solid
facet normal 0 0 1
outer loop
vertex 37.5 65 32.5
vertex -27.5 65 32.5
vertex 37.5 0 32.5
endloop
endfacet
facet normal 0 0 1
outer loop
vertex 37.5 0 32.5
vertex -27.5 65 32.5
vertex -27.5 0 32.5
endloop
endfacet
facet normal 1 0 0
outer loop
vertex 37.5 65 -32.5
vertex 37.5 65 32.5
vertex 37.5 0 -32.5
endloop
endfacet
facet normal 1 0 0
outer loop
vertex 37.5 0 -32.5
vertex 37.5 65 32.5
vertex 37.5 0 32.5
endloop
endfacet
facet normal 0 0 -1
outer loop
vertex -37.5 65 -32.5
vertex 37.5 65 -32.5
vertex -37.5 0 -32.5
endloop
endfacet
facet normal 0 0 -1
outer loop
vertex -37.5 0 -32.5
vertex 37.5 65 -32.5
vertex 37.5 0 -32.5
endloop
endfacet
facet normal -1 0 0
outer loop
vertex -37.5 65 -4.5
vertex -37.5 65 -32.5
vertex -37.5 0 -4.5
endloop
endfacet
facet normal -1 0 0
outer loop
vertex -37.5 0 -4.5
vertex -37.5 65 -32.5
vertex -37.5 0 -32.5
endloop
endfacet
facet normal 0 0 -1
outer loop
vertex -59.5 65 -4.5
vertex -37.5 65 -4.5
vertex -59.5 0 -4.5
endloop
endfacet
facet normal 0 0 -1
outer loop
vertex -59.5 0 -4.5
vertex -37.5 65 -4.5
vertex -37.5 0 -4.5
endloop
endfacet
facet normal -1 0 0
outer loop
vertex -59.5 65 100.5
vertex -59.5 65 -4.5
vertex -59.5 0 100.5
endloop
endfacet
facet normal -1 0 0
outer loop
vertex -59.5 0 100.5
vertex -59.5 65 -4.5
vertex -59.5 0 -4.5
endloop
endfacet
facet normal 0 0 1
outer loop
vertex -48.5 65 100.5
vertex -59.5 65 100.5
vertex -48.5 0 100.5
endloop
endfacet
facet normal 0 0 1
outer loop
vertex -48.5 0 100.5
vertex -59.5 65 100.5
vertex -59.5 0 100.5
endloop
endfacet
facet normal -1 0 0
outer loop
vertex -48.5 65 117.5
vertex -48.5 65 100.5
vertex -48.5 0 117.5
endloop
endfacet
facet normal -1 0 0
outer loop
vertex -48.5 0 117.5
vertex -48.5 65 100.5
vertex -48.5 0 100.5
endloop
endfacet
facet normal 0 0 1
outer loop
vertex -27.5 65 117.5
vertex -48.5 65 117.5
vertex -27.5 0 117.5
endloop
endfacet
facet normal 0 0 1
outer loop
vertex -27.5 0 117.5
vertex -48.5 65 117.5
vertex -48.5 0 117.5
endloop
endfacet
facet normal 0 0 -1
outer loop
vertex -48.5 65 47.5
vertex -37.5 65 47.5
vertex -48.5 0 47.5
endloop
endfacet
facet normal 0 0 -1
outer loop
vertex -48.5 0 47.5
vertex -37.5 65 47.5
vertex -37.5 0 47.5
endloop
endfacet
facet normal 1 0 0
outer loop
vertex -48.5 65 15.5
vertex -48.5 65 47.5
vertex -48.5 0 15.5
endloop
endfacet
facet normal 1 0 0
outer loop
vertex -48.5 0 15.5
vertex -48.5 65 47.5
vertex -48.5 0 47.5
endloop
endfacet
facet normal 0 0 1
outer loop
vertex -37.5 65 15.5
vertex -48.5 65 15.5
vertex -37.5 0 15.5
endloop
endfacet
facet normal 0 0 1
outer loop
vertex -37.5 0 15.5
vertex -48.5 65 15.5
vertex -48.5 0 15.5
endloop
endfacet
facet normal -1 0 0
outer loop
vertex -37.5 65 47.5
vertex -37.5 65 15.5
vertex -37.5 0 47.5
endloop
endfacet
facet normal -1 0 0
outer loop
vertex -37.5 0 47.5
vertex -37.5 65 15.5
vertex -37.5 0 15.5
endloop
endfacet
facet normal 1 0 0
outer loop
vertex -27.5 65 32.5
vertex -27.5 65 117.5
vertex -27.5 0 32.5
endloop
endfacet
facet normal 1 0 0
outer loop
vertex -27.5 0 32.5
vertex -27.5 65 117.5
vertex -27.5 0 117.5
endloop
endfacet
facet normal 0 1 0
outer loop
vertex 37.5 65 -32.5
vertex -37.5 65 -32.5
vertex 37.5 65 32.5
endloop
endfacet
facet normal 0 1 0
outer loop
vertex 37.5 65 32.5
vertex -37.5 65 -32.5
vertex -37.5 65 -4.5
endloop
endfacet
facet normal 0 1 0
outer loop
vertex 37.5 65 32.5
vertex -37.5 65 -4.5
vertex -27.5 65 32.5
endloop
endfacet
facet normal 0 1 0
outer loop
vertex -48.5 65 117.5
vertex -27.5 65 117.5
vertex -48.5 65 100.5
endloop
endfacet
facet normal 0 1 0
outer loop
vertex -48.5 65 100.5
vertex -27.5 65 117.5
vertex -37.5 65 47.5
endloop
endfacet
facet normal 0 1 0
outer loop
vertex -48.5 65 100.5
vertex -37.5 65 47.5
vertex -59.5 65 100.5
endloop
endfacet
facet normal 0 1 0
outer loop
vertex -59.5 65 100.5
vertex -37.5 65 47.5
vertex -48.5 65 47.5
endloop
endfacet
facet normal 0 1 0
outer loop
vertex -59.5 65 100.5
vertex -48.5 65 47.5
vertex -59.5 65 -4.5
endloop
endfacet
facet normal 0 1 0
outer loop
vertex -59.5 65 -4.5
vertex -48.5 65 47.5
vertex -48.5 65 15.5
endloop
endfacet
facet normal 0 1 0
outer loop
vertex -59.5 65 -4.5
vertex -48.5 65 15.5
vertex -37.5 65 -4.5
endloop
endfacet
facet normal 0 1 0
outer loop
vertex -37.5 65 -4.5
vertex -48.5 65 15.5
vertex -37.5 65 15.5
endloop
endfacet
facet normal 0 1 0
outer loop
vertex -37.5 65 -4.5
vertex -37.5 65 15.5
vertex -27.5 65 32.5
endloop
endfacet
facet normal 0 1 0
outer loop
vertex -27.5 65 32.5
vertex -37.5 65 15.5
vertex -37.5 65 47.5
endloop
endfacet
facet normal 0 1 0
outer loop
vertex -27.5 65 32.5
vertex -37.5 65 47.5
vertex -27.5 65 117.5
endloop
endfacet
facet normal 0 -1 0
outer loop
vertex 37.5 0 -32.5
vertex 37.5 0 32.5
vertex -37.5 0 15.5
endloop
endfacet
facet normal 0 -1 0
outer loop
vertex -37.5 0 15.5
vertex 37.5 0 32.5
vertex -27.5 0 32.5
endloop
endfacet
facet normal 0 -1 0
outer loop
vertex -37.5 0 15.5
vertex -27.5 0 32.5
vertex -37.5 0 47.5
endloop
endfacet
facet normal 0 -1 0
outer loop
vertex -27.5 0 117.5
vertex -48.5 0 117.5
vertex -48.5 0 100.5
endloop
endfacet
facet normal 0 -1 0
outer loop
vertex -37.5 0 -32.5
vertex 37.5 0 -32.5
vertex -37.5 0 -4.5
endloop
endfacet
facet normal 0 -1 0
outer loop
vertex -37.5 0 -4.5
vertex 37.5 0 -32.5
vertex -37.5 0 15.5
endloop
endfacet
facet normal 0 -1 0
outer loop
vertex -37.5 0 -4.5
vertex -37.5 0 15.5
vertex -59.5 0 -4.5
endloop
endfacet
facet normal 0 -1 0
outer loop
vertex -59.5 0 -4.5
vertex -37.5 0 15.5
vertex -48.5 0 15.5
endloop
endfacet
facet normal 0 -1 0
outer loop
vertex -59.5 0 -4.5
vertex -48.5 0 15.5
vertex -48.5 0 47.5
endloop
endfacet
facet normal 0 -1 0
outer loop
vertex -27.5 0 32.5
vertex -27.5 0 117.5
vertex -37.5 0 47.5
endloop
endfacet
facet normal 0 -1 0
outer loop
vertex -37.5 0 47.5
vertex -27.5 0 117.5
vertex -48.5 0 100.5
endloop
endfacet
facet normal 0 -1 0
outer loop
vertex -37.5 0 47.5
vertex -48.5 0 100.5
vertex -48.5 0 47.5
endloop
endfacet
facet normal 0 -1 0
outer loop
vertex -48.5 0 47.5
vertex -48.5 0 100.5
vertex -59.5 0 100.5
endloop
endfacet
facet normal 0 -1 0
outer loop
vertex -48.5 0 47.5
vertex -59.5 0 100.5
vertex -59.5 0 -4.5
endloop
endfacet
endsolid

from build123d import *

# Parameters (mm, degrees)
SKIZZE1_W                       = 75
SKIZZE1_H                       = 65
SKIZZE1_W_2                     = 11
SKIZZE1_H_2                     = 20
AUFSATZ_LINEAR_AUSTRAGEN1_DEPTH = 65


with BuildPart() as part:
    # Skizze1 → Aufsatz-Linear austragen1 (new body)
    with BuildSketch(Plane(origin=(0, 0, 0), x_dir=(1, 0, 0), z_dir=(0, 1, 0))):
        Rectangle(SKIZZE1_W, SKIZZE1_H)
        with Locations((-43, -5.5)):
            Rectangle(SKIZZE1_W_2, SKIZZE1_H_2)
        Polygon((-48.5, -47.5), (-48.5, -15.5), (-48.5, 4.5), (-59.5, 4.5), (-59.5, -100.5), (-48.5, -100.5), align=None)
        Polygon((-37.5, -66.284082461), (-37.5, -47.5), (-48.5, -47.5), (-48.5, -100.5), (-48.5, -117.5), (-37.5, -117.5), align=None)
        Polygon((-27.5, -32.5), (-37.5, -32.5), (-37.5, -47.5), (-37.5, -66.284082461), (-37.5, -117.5), (-27.5, -117.5), align=None)
    extrude(amount=AUFSATZ_LINEAR_AUSTRAGEN1_DEPTH)


solid = part.part
